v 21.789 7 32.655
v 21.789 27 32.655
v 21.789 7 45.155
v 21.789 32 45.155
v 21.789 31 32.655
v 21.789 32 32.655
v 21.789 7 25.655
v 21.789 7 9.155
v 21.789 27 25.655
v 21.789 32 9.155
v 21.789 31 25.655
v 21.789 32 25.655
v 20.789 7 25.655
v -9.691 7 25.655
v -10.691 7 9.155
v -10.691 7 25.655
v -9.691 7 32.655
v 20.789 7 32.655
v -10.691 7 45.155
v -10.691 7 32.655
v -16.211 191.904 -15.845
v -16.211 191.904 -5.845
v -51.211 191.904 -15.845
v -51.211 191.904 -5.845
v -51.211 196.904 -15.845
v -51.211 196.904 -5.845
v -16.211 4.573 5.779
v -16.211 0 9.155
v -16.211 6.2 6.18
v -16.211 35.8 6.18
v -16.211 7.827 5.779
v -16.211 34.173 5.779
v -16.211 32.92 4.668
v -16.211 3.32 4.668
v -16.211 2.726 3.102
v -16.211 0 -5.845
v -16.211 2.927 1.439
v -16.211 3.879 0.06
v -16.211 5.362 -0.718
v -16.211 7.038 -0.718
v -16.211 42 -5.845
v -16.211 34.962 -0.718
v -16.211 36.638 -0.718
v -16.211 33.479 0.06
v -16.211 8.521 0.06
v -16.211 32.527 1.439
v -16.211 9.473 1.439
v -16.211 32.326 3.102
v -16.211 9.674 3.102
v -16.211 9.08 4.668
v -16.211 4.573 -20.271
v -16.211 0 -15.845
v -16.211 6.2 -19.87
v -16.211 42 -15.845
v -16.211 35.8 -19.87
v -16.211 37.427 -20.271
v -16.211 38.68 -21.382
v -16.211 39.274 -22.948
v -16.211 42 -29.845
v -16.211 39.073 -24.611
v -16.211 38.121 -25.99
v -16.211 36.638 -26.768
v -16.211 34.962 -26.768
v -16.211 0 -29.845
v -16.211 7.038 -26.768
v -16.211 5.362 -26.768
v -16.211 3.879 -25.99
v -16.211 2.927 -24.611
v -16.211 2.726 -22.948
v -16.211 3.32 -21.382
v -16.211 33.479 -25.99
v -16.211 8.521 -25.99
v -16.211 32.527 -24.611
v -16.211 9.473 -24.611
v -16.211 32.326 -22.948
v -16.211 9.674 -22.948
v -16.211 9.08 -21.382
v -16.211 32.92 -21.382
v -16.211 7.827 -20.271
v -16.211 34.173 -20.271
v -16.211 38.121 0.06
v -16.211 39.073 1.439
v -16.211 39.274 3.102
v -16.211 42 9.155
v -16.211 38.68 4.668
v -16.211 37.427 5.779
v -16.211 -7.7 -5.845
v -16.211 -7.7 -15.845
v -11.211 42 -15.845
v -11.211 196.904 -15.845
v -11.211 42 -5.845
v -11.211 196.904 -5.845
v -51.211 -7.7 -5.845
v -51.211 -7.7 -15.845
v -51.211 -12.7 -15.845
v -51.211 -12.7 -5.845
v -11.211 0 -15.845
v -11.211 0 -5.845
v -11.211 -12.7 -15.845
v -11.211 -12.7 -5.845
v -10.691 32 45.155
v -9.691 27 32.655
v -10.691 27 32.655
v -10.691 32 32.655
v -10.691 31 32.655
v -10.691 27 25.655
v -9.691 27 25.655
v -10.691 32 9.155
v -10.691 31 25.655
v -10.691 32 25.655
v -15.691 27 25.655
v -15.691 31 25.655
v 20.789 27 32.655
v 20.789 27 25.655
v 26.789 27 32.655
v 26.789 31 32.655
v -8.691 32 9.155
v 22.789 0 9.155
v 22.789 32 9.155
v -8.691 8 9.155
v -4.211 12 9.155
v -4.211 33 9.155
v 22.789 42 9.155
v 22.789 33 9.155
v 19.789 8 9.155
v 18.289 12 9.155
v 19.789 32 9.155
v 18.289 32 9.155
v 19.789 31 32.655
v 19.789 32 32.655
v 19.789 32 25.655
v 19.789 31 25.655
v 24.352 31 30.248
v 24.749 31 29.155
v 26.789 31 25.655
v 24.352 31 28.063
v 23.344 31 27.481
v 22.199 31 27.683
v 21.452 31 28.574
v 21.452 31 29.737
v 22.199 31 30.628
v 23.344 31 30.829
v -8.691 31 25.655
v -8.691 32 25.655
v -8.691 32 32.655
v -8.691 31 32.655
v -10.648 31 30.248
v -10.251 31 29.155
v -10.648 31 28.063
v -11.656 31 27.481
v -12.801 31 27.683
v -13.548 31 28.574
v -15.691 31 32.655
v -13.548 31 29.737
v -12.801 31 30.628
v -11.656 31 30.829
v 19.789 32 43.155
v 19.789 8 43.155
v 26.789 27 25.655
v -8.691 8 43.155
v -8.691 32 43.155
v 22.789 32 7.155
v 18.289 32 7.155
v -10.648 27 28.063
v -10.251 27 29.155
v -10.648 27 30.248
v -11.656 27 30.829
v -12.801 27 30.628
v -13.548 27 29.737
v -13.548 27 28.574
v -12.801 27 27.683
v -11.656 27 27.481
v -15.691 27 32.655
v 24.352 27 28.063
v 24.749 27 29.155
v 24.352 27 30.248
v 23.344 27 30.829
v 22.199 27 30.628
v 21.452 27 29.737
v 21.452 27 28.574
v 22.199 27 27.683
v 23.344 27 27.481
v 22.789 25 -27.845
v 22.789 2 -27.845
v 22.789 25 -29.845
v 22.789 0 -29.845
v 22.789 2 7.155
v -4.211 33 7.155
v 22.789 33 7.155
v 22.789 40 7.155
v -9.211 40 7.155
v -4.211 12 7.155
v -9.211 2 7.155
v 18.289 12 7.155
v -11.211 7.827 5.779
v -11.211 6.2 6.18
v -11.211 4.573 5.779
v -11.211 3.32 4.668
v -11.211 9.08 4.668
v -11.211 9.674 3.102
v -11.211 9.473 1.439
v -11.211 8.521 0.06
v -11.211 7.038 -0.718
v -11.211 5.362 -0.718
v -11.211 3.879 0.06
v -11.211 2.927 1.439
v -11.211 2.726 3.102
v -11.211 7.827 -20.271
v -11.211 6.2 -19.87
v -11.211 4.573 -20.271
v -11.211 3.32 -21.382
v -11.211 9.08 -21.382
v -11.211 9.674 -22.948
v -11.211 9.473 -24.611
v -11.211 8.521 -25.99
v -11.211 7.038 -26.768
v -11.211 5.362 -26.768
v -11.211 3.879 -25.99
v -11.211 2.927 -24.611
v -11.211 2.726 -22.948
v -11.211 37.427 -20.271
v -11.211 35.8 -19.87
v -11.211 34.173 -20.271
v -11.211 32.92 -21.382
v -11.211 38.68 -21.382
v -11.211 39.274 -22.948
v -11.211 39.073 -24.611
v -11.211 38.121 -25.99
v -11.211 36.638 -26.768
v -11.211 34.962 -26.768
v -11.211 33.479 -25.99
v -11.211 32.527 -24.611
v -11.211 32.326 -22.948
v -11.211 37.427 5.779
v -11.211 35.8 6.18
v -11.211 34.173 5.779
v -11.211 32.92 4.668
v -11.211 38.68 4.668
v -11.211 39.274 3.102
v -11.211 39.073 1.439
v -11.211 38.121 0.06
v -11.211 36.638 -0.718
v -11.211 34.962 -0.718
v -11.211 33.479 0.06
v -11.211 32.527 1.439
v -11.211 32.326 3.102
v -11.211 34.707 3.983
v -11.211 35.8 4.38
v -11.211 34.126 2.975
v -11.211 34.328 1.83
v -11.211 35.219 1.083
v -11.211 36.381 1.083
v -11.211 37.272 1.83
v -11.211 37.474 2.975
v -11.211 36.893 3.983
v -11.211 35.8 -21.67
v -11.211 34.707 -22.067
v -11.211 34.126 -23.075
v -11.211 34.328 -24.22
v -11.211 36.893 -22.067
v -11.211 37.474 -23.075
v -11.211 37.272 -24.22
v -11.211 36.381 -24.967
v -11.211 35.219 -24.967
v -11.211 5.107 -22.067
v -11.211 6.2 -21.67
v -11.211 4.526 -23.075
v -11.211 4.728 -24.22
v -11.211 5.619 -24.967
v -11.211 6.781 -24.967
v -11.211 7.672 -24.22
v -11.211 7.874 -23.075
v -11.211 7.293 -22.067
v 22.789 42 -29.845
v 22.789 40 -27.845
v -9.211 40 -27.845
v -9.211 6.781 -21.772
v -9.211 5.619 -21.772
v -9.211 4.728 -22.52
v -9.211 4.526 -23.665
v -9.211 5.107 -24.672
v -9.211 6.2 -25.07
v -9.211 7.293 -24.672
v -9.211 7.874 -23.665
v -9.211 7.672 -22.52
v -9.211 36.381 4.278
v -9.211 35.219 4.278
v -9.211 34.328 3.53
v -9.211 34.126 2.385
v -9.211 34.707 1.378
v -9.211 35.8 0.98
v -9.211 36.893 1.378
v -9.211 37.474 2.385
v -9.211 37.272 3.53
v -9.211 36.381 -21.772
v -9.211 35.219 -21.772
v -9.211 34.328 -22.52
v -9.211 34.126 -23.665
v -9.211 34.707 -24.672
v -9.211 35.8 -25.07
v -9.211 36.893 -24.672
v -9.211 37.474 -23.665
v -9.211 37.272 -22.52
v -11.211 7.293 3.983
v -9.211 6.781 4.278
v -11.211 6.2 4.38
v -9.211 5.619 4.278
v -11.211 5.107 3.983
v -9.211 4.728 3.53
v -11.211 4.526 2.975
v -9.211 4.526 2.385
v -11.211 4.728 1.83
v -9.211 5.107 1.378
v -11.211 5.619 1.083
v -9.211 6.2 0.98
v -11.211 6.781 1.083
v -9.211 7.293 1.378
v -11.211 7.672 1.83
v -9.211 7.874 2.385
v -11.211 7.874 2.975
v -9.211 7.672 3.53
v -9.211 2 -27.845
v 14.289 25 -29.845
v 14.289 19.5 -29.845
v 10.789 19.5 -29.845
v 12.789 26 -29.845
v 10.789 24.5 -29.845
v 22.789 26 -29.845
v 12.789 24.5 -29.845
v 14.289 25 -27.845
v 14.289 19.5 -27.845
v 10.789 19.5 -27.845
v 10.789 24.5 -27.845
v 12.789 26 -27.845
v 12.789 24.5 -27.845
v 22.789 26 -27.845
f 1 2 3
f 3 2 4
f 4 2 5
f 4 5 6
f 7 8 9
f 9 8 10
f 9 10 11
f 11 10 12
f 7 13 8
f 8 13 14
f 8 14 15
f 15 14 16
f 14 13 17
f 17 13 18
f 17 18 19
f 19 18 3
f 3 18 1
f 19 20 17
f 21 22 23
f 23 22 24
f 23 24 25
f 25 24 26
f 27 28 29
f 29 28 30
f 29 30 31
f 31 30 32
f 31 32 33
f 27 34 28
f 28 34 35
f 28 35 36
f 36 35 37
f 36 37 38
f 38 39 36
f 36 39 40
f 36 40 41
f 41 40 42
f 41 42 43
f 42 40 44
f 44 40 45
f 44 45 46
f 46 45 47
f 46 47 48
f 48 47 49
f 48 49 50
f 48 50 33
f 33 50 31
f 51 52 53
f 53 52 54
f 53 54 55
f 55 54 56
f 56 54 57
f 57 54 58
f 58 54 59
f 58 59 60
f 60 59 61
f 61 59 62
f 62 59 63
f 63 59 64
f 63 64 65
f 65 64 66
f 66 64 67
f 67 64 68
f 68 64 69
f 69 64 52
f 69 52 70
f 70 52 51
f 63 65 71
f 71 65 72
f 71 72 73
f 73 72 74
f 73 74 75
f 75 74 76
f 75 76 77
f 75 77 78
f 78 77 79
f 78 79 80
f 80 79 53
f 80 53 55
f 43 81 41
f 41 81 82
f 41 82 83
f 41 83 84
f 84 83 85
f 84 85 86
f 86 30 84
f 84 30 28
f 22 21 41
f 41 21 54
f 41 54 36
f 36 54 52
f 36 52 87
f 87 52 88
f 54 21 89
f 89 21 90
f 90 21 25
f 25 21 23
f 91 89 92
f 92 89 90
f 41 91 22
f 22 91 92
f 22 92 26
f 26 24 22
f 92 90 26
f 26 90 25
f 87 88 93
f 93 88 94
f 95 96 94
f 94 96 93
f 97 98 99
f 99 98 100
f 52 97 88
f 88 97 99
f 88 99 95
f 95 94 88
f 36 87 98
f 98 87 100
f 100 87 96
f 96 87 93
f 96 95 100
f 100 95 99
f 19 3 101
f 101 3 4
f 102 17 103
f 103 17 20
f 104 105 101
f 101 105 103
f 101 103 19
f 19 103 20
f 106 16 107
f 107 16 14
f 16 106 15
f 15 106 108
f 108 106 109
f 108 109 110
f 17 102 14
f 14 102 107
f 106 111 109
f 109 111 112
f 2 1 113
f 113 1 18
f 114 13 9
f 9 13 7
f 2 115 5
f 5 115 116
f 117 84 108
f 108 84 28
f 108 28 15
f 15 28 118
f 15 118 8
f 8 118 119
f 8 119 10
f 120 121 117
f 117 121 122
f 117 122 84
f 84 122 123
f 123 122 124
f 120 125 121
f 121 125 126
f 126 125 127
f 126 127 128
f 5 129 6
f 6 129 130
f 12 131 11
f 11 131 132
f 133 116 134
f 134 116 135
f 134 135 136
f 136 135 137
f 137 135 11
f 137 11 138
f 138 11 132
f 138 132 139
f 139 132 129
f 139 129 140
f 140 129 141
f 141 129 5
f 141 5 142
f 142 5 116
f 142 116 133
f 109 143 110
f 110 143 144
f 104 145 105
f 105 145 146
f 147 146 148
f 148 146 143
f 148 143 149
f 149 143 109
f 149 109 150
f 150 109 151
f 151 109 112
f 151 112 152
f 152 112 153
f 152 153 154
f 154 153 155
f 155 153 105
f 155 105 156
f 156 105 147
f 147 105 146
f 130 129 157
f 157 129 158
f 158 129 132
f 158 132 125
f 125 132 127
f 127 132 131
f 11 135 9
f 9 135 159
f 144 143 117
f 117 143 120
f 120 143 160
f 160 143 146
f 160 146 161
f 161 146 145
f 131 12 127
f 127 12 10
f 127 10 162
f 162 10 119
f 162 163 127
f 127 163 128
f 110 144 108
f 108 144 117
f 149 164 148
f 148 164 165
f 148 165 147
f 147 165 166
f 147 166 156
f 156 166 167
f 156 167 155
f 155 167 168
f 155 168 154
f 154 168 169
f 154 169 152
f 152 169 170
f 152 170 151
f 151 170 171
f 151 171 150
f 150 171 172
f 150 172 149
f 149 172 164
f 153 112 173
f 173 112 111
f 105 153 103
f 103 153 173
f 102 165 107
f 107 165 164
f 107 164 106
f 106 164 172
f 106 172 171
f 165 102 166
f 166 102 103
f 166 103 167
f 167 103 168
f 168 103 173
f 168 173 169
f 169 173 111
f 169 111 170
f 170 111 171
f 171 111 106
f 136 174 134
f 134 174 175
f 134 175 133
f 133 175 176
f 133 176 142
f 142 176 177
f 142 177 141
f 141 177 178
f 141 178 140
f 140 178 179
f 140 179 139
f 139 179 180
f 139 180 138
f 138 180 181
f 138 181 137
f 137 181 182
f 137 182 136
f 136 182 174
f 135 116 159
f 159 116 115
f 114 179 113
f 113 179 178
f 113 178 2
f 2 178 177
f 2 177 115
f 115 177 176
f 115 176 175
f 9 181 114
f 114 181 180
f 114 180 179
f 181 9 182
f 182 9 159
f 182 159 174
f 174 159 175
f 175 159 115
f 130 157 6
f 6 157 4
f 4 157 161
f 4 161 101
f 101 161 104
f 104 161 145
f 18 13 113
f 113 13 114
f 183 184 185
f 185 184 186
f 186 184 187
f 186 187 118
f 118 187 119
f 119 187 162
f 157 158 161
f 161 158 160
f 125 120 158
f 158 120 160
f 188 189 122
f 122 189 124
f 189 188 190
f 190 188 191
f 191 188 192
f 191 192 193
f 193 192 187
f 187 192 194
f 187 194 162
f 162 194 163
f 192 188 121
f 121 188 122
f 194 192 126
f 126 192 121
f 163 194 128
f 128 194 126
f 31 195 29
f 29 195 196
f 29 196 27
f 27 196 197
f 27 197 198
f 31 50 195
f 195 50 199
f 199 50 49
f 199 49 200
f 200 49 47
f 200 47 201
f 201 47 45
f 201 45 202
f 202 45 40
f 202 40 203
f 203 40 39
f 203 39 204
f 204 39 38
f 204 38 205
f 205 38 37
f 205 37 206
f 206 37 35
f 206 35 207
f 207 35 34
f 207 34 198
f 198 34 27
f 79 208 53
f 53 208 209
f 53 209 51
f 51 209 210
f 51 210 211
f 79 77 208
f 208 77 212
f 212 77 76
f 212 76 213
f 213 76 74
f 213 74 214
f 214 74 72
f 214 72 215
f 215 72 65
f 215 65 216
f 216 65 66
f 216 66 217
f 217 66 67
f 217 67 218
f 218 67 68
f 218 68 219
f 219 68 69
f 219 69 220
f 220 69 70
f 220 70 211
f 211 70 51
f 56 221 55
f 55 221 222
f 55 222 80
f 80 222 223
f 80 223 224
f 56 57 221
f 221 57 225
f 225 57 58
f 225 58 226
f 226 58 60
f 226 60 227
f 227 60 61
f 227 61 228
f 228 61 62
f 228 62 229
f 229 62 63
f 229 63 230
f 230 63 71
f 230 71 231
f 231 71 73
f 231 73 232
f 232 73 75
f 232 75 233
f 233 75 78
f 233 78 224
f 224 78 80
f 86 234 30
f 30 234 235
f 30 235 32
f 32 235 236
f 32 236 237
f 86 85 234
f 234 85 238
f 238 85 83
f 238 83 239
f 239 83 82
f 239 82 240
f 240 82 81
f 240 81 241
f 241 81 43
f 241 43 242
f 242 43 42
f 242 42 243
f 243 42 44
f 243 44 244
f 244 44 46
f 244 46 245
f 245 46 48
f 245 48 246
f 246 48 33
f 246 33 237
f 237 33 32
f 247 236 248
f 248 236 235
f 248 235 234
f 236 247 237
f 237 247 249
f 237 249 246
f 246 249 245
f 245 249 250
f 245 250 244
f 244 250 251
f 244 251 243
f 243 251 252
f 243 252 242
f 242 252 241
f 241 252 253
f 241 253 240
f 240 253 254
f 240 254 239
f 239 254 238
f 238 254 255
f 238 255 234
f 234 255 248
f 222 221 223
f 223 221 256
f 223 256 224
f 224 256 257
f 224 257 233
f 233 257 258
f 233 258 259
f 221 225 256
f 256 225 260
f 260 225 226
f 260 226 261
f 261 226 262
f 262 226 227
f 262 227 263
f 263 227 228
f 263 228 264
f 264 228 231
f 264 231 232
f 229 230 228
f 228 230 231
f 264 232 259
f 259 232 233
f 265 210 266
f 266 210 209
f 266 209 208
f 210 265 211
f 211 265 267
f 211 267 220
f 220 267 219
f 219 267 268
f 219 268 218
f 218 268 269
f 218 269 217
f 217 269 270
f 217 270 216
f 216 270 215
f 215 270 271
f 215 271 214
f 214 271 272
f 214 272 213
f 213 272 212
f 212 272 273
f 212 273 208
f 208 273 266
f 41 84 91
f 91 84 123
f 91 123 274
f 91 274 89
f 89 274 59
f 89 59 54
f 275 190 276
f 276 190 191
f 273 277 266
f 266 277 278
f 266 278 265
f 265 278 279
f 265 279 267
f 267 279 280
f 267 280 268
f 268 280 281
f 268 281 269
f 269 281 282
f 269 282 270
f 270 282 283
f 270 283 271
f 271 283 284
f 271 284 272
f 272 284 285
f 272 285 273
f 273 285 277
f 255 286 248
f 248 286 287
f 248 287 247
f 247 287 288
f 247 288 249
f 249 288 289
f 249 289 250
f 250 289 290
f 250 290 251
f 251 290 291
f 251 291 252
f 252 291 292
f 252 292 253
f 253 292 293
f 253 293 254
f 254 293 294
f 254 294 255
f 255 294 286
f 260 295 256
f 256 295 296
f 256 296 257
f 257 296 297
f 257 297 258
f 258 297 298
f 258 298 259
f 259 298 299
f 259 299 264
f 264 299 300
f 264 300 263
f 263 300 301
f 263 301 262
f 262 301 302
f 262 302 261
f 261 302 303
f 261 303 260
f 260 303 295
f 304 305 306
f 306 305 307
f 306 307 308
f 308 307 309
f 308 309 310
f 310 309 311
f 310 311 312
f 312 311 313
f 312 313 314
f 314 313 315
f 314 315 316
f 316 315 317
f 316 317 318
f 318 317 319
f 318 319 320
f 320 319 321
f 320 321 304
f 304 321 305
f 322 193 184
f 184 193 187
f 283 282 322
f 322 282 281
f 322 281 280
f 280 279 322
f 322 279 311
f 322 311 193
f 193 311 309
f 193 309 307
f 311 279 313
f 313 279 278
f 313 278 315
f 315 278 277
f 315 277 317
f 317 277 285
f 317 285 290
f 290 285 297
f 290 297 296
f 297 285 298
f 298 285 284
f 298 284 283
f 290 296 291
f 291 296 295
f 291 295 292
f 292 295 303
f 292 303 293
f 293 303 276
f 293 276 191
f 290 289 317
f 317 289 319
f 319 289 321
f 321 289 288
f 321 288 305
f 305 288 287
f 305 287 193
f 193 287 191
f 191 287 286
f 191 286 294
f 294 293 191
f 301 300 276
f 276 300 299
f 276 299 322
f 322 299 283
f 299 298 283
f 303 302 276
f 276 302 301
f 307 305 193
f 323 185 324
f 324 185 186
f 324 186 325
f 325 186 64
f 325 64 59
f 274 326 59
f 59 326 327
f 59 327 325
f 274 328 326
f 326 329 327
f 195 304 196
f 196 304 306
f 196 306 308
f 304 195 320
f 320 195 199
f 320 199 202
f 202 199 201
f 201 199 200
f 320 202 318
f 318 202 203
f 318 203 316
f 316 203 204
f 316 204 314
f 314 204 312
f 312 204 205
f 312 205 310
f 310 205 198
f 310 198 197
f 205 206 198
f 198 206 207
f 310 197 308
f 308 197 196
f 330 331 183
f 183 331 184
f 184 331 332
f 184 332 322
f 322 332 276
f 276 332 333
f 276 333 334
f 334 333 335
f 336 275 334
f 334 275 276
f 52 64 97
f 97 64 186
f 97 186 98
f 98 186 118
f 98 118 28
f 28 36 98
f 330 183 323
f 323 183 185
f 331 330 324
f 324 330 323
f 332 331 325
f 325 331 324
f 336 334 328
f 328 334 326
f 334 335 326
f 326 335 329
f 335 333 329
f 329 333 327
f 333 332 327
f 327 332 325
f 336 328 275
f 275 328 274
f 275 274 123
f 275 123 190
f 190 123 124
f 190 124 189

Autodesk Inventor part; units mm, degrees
ref_plane "YZ Plane" through (0, 0, 0) normal (1, 0, 0) x (0, 1, 0)
ref_plane "XZ Plane" through (0, 0, 0) normal (0, 1, 0) x (-1, 0, 0)
ref_plane "XY Plane" through (0, 0, 0) normal (0, 0, 1) x (1, 0, 0)
sketch "Sketch1" plane through (0, 0, 0) normal (0, 1, 0) x (-1, 0, 0)
  line L0 (9.2107, 7.1553) -> (-19.7893, 7.1553)
  line L1 (-19.7893, 7.1553) -> (-19.7893, -27.8447)
  line L2 (-19.7893, -27.8447) -> (9.2107, -27.8447)
  line L3 (9.2107, -27.8447) -> (9.2107, 7.1553)
  line L4 (9.2107, 7.1553) -> (11.2107, 7.1553)
  line L5 (11.2107, 7.1553) -> (11.2107, 9.1553)
  line L6 (11.2107, 9.1553) -> (-21.7893, 9.1553)
  line L7 (-21.7893, 9.1553) -> (-21.7893, -29.8447)
  line L8 (-21.7893, -29.8447) -> (11.2107, -29.8447)
  line L9 (11.2107, -29.8447) -> (11.2107, 7.1553)
  point P0 (0, 0)
  dimension "d0" = 29
  dimension "d1" = 35
  dimension "d2" = 2
  dimension "d3" = 2
  dimension "d4" = 33
  dimension "d5" = 39
extrude "Extrusion1" add sketch "Sketch1" along normal blind 2 contours L3 L2 L1 L0
extrude "Extrusion2" add sketch "Sketch1" along normal blind 40
sketch "Sketch2" plane through (21.7893, 0, -29.8447) normal (1, 0, 0) x (0, 0, -1)
  line L0 (-37, 2) -> (-37, 40) projected
  line L1 (-37, 40) -> (-37, 2)
  line L2 (-2, 2) -> (-2, 40) projected
  line L3 (-37, 2) -> (-2, 2)
  line L4 (-2, 2) -> (-2, 40)
  line L5 (-37, 40) -> (-2, 40) projected
  line L6 (-2, 40) -> (-37, 40)
extrude "Extrusion3" cut sketch "Sketch2" against normal blind 10
sketch "Sketch3" plane through (-9.2107, 2, -27.8447) normal (1, 0, 0) x (0, 0, -1)
  line L0 (0, 0) -> (0, 38) projected
  line L1 (0, 0) -> (0, 4.2)
  line L2 (0, 4.2) -> (-4.475, 4.2)
  line L3 (-35, 0) -> (-35, 38) projected
  line L4 (-4.475, 4.2) -> (-30.525, 4.2)
  line L5 (-30.525, 4.2) -> (-30.525, 33.8)
  line L6 (-30.525, 33.8) -> (-4.475, 33.8)
  line L7 (-4.475, 33.8) -> (-4.475, 4.2)
  point P0 (-27.8447, -2)
  dimension "d12" = 4.2
  dimension "d13" = 4.475
  dimension "d14" = 26.05
  dimension "d15" = 29.6
hole "Hole1" at (-9.2107, 35.8, 2.6803) at (-9.2107, 35.8, -23.3697) at (-9.2107, 6.2, -23.3697) at (-9.2107, 6.2, 2.6803) direction (-1, 0, 0) diameter 3.4 end through all clearance for "Flat Head Machine Screw" size "M3" standard "Ansi Metric M Profile"
sketch "Sketch4" plane through (-11.2107, 2, -27.8447) normal (1, 0, 0) x (0, 0, -1)
  line L0 (-37, 38) -> (-35, 38) projected
  line L1 (-37, 38) -> (2, 38)
  line L2 (2, 38) -> (2, 40)
  line L3 (2, 40) -> (-37, 40)
  line L4 (-37, 40) -> (-37, 38)
  point P0 (-27.8447, -2)
  dimension "d23" = 39
  dimension "d24" = 2
extrude "Extrusion4" add sketch "Sketch4" along normal blind 33
sketch "Sketch5" plane through (21.7893, 0, 9.1553) normal (1, 0, 0) x (0, 0, -1)
  point P0 (9.1553, 0)
sketch "Sketch6" plane through (-11.2107, 0, -29.8447) normal (-1, 0, 0) x (0, 0, 1)
  point P0 (29.8447, 0)
sketch "Sketch7" plane through (-11.2107, 0, -29.8447) normal (-1, 0, 0) x (0, 0, 1)
  circle A0 centre (6.475, 6.2) radius 1.7 projected
  circle A1 centre (32.525, 35.8) radius 1.7 projected
  circle A2 centre (6.475, 35.8) radius 1.7 projected
  circle A3 centre (32.525, 6.2) radius 1.7 projected
  line L0 (0, 0) -> (39, 0) projected
  line L1 (39, 0) -> (39, 42) projected
  line L2 (0, 42) -> (39, 42) projected
  line L3 (0, 0) -> (0, 42) projected
  circle A4 centre (6.475, 6.2) radius 1.7 projected
  circle A5 centre (6.475, 6.2) radius 3.5
  circle A6 centre (6.475, 35.8) radius 3.5
  circle A7 centre (32.525, 35.8) radius 3.5
  circle A8 centre (32.525, 6.2) radius 1.7 projected
  circle A9 centre (32.525, 6.2) radius 3.5
  point P0 (29.8447, 0)
  dimension "d27" = 7
  dimension "d28" = 7
  dimension "d29" = 7
  dimension "d30" = 7
extrude "Extrusion5" add sketch "Sketch7" along normal blind 5 contours L3 L2 L1 L0
sketch "Sketch8" plane through (21.7893, 0, 9.1553) normal (0, 0, 1) x (1, 0, 0)
  line L0 (0, 0) -> (0, 42) projected
  line L1 (0, 42) -> (0, 32)
  line L2 (0, 32) -> (-3.5, 32)
  line L3 (-3.5, 32) -> (-3.5, 12)
  line L4 (-3.5, 32) -> (16.5, 32) construction
  line L5 (-3.5, 12) -> (-26, 12)
  line L6 (-26, 12) -> (-26, 32)
  line L7 (-26, 32) -> (-3.5, 32)
  point P0 (-21.7893, 0)
  dimension "d33" = 10
  dimension "d34" = 3.5
  dimension "d35" = 20
  dimension "d36" = 90
  dimension "d37" = 22.5
extrude "Extrusion6" cut sketch "Sketch8" against normal blind 10
sketch "Sketch9" plane through (21.7893, 0, 9.1553) normal (0, 0, 1) x (1, 0, 0)
  line L0 (-26, 32) -> (-3.5, 32) projected
  line L1 (-26, 32) -> (-26, 33)
  line L2 (-26, 33) -> (0, 33)
  line L3 (0, 2) -> (0, 40) projected
  line L4 (0, 32) -> (-10.0622, 32)
  point P0 (-21.7893, 0)
  dimension "d40" = 1
extrude "Extrusion7" cut sketch "Sketch9" against normal blind 10
sketch "Sketch10" plane through (-16.2107, 42, 9.1553) normal (0, 0, 1) x (1, 0, 0)
  line L0 (38, -10) -> (34.5, -10) projected
  line L1 (38, -10) -> (38, -34)
  line L2 (38, -40) -> (38, -10) projected
  line L3 (0, -42) -> (0, 0) projected
  line L4 (38, -34) -> (7.52, -34)
  line L5 (7, -40) -> (7, -2) projected
  line L6 (7.52, -34) -> (7.52, -10)
  line L7 (7.52, -10) -> (38, -10)
  line L8 (38, -34) -> (38, -35)
  line L9 (38, -35) -> (6.52, -35)
  line L10 (6.52, -35) -> (6.52, -9)
  line L11 (6.52, -9) -> (38, -9)
  line L12 (38, -2) -> (38, -40) projected
  line L13 (38, -10) -> (38, -9)
  point P0 (16.2107, -42)
  dimension "d43" = 24
  dimension "d44" = 30.48
  dimension "d45" = 1
  dimension "d46" = 31.48
  dimension "d47" = 26
extrude "Extrusion8" add sketch "Sketch10" along normal blind 34 contours L0 L7 L6 L4 L2 L9 L5 L11 L12 | L5 L9 L10 L11
sketch "Sketch11" plane through (-9.6907, 9, 9.1553) normal (1, 0, 0) x (0, 0, -1)
  line L0 (-34, -2) -> (-34, -1) projected
  line L1 (-34, -2) -> (-35, -2)
  line L2 (-35, -2) -> (-35, 24)
  line L3 (0, 24) -> (-34, 24) projected
  line L4 (-35, 24) -> (-34, 24)
  line L5 (-34, 24) -> (-34, -2)
  point P0 (9.1553, -9)
  point P1 (0, 26)
  point P2 (-34, -1)
  dimension "d50" = 1
extrude "Extrusion9" add sketch "Sketch11" along normal blind 29.48
sketch "Sketch16" plane through (-9.6907, 7, 9.1553) normal (0, -1, 0) x (1, 0, 0)
  line L0 (0, 35) -> (29.48, 35) projected
  line L1 (29.48, 35) -> (30.48, 35)
  line L2 (30.48, 35) -> (30.48, 0)
  line L3 (30.48, 0) -> (29.48, 0)
  line L4 (29.48, 0) -> (29.48, 35)
  point P0 (9.6907, -9.1553)
  dimension "d69" = 1
  dimension "d70" = 35
extrude "Extrusion14" add sketch "Sketch16" against normal blind 26
sketch "Sketch17" plane through (-4.2107, 33, 9.1553) normal (0, 1, 0) x (1, 0, 0)
  line L0 (24, 0) -> (24, -34) projected
  line L1 (-4.48, -34) -> (24, -34) projected
  line L2 (24, -34) -> (-4.48, -34)
  line L3 (-4.48, 0) -> (-4.48, -34) projected
  line L4 (-4.48, -34) -> (-4.48, 0)
  line L5 (-4.48, 0) -> (26, 0)
  line L6 (25, -34) -> (25, 0) projected
  line L7 (0, 0) -> (26, 0) projected
  line L8 (-5.48, 0) -> (0, 0) projected
  line L9 (-5.48, 0) -> (-5.48, -35) projected
  line L10 (-5.48, -35) -> (25, -35) projected
  line L11 (25, -35) -> (25, -34) projected
  line L12 (26, -34) -> (25, -34) projected
  line L13 (26, 0) -> (26, -34) projected
  point P0 (4.2107, 9.1553)
extrude "Extrusion15" cut sketch "Sketch17" against normal blind 10 contours L0 L1 L3 L5
sketch "Sketch18" plane through (-9.6907, 33, 44.1553) normal (0, 1, 0) x (1, 0, 0)
  line L0 (1, 1) -> (1, 35) projected
  line L1 (0, 35) -> (1, 35) projected
  line L2 (0, 35) -> (0, 0) projected
  line L3 (0, 0) -> (30.48, 0) projected
  line L4 (30.48, 0) -> (30.48, 1) projected
  line L5 (29.48, 1) -> (1, 1) projected
  line L6 (31.48, 1) -> (30.48, 1) projected
  line L7 (31.48, 35) -> (31.48, 1) projected
  line L8 (29.48, 35) -> (29.48, 1) projected
  line L9 (29.48, 35) -> (31.48, 35) projected
  point P0 (9.6907, 44.1553)
extrude "Extrusion16" cut sketch "Sketch18" against normal blind 1
sketch "Sketch19" plane through (21.7893, 0, 9.1553) normal (1, 0, 0) x (0, 0, -1)
  line L0 (0, 0) -> (0, 7) projected
  line L1 (0, 0) -> (39, 0) projected
  line L2 (39, 0) -> (39, 42) projected
  line L3 (39, 42) -> (0, 42) projected
  line L4 (0, 33) -> (0, 42) projected
  line L5 (0, 33) -> (2, 33) projected
  line L6 (2, 33) -> (2, 40) projected
  line L7 (2, 40) -> (37, 40) projected
  line L8 (37, 40) -> (37, 2) projected
  line L9 (37, 2) -> (2, 2) projected
  line L10 (2, 2) -> (2, 32) projected
  line L11 (2, 32) -> (0, 32) projected
  line L12 (0, 8) -> (0, 32) projected
  line L13 (0, 8) -> (-34, 8) projected
  line L14 (-34, 7) -> (-34, 8) projected
  line L15 (0, 7) -> (-34, 7) projected
  line L16 (0, 7) -> (0, 8)
  line L17 (0, 0) -> (0, 42) projected
  point P0 (9.1553, 0)
extrude "Extrusion17" add sketch "Sketch19" along normal blind 1 contours L0 L16 L12 L11 L10 L9 L8 L7 L6 L5 L4 L3 L2 L1
sketch "Sketch20" plane through (-9.6907, 32, 44.1553) normal (0, 1, 0) x (1, 0, 0)
  line L0 (29.48, 1) -> (1, 1) projected
  line L1 (15.24, 1) -> (15.24, 15)
  line L2 (15.24, 15) -> (32.74, 15)
  line L3 (32.74, 15) -> (-2.26, 15)
  line L4 (1, 35) -> (1, 1) projected
  line L5 (1, 15) -> (1, 11.5)
  line L6 (1, 11.5) -> (-6, 11.5)
  line L7 (-6, 11.5) -> (-6, 18.5)
  line L8 (-6, 18.5) -> (1, 18.5)
  line L9 (1, 11.5) -> (1, 18.5)
  line L10 (29.48, 1) -> (29.48, 35) projected
  line L11 (29.48, 18.5) -> (36.48, 18.5)
  line L12 (36.48, 18.5) -> (36.48, 11.5)
  line L13 (36.48, 11.5) -> (29.48, 11.5)
  circle A0 centre (-2.26, 15) radius 1.7
  circle A1 centre (32.74, 15) radius 1.7
  point P0 (9.6907, 44.1553)
  point P1 (30.48, 1)
  dimension "d79" = 14
  dimension "d80" = 17.5
  dimension "d81" = 90
  dimension "d82" = 35
  dimension "d83" = 3.5
  dimension "d84" = 7
  dimension "d85" = 7
  dimension "d86" = 7
  dimension "d87" = 3.4
  dimension "d88" = 3.4
extrude "Extrusion18" add sketch "Sketch20" against normal blind 5 contours L10 L11 L12 L13 | L6 L7 L8 L4
sketch "Sketch21" plane through (-8.6907, 32, 43.1553) normal (0, 1, 0) x (1, 0, 0)
  line L0 (29.48, 17.5) -> (29.48, 10.5) projected
  line L1 (29.48, 17.5) -> (28.48, 17.5)
  line L2 (28.48, 0) -> (28.48, 34) projected
  line L3 (35.48, 10.5) -> (29.48, 10.5) projected
  line L4 (29.48, 10.5) -> (28.48, 10.5)
  line L5 (28.48, 10.5) -> (28.48, 17.5)
  line L6 (-1, 17.5) -> (-7, 17.5) projected
  line L7 (-1, 17.5) -> (0, 17.5)
  line L8 (0, 34) -> (0, 0) projected
  line L9 (-1, 10.5) -> (-1, 17.5)
  line L10 (-1, 34) -> (-1, -1) projected
  line L11 (-1, -1) -> (-1, 10.5) projected
  line L12 (-1, 10.5) -> (0, 10.5)
  line L13 (0, 10.5) -> (0, 17.5)
  line L14 (29.48, 10.5) -> (29.48, -1) projected
  line L15 (26.98, 36) -> (31.48, 36) projected
  line L16 (26.98, 34) -> (26.98, 36) projected
  line L17 (28.48, 34) -> (26.98, 34) projected
  line L18 (0, 34) -> (0, 0) projected
  line L19 (-1, 34) -> (0, 34) projected
  line L20 (-1, 17.5) -> (-1, 34) projected
  line L21 (-1, 17.5) -> (-7, 17.5) projected
  line L22 (-7, 17.5) -> (-7, 10.5) projected
  line L23 (-7, 10.5) -> (-1, 10.5) projected
  line L24 (-1, -1) -> (-1, 10.5) projected
  line L25 (29.48, -1) -> (-1, -1) projected
  line L26 (31.48, 34) -> (29.48, 34) projected
  line L27 (31.48, 36) -> (31.48, 34) projected
  line L28 (28.48, 0) -> (28.48, 34) projected
  line L29 (0, 0) -> (28.48, 0) projected
  line L30 (29.48, 10.5) -> (35.48, 10.5) projected
  line L31 (35.48, 10.5) -> (35.48, 17.5) projected
  line L32 (35.48, 17.5) -> (29.48, 17.5) projected
  line L33 (29.48, 34) -> (29.48, 17.5) projected
  point P0 (8.6907, 43.1553)
  point P1 (30.1371, 10.5)
  point P2 (29.48, 17.5)
  point P3 (-7, 17.5)
extrude "Extrusion19" cut sketch "Sketch21" against normal blind 1 contours L32 L31 L3 L0 | L0 L4 L2 L1 | L23 L22 L6 L9 | L9 L7 L8 L12
sketch "Sketch30" plane through (20.7893, 7, 44.1553) normal (1, 0, 0) x (0, 0, -1)
  line L0 (11.5, 25) -> (0, 25) projected
  line L1 (0, 0) -> (0, 25) projected
  line L2 (1, 0) -> (0, 0) projected
  line L3 (1, 0) -> (0, 0) projected
  line L4 (35, 0) -> (37, 0)
  line L5 (1, 1) -> (1, 0) projected
  line L6 (35, 1) -> (1, 1) projected
  line L7 (35, 25) -> (35, 1) projected
  line L8 (35, 25) -> (18.5, 25) projected
  line L9 (18.5, 24) -> (18.5, 20) projected
  line L10 (18.5, 20) -> (11.5, 20) projected
  line L11 (11.5, 20) -> (11.5, 24) projected
  line L12 (18.5, 25) -> (18.5, 24) projected
  line L13 (11.5, 24) -> (11.5, 25) projected
  line L14 (18.5, 20) -> (18.5, 0)
  line L15 (35, 0) -> (0, 0) projected
  line L16 (11.5, 20) -> (18.5, 20) projected
  line L17 (11.5, 20) -> (11.5, 0)
  line L18 (35, 1) -> (1, 1) projected
  line L19 (11.5, 1) -> (11.5, 0)
  line L20 (35, 0) -> (1, 0) projected
  line L21 (18.5, 1) -> (18.5, 0)
  point P0 (44.1553, -7)
extrude "Extrusion25" add sketch "Sketch30" along normal blind 1 contours L13 L11 L17 L6 L5 L2 L1 L0 | L9 L12 L8 L7 L6 L14
sketch "Sketch31" plane through (-9.6907, 7, 9.1553) normal (-1, 0, 0) x (0, 0, 1)
  line L0 (16.5, 20) -> (16.5, 24) projected
  line L1 (16.5, 25) -> (0, 25) projected
  line L2 (0, 0) -> (0, 25) projected
  line L3 (0, 0) -> (35, 0) projected
  line L4 (35, 25) -> (35, 0) projected
  line L5 (35, 25) -> (23.5, 25) projected
  line L6 (23.5, 24) -> (23.5, 20) projected
  line L7 (23.5, 20) -> (16.5, 20) projected
  line L8 (23.5, 25) -> (23.5, 24) projected
  line L9 (16.5, 24) -> (16.5, 25) projected
  line L10 (0, 0) -> (35, 0) projected
  line L11 (16.5, 20) -> (23.5, 20)
  line L12 (23.5, 20) -> (23.5, 0)
  line L13 (23.5, 0) -> (16.5, 0)
  line L14 (16.5, 0) -> (16.5, 20)
  point P0 (-9.1553, -7)
  point P1 (23.5, 20)
  point P2 (23.5, 0)
  point P3 (16.5, 0)
extrude "Extrusion26" add sketch "Sketch31" along normal blind 1 contours L14 L3 L2 L1 L9 L0 | L6 L8 L5 L4 L3 L12
sketch "Sketch32" plane through (21.7893, 7, 44.1553) normal (0, 0, 1) x (1, 0, 0)
  line L0 (0, 25) -> (-32.48, 25) projected
  line L1 (-32.48, 0) -> (-32.48, 25) projected
  line L2 (-32.48, 0) -> (0, 0) projected
  line L3 (0, 25) -> (0, 0) projected
  point P0 (-21.7893, -7)
extrude "Extrusion27" add sketch "Sketch32" along normal blind 1
sketch "Sketch25" plane through (0, 0, 0) normal (0, -1, 0) x (1, 0, 0)
  line L0 (-16.2107, -29.8447) -> (-16.2107, 9.1553) projected
  line L1 (-16.2107, 9.1553) -> (-16.2107, -5.8447)
  line L2 (-16.2107, -5.8447) -> (-16.2107, -15.8447)
  line L3 (-16.2107, -15.8447) -> (-11.2107, -15.8447)
  line L4 (-11.2107, -15.8447) -> (-11.2107, -5.8447)
  line L5 (-11.2107, -5.8447) -> (-16.2107, -5.8447)
  point P0 (0, 0)
  dimension "d118" = 15
  dimension "d119" = 10
  dimension "d120" = 5
extrude "Extrusion21" add sketch "Sketch25" along normal blind 12.7
sketch "Sketch26" plane through (-16.2107, 0, -29.8447) normal (-1, 0, 0) x (0, 0, 1)
  line L0 (24, -12.7) -> (14, -12.7) projected
  line L1 (24, -12.7) -> (24, -7.7)
  line L2 (24, 0) -> (24, -12.7) projected
  line L3 (24, -7.7) -> (14, -7.7)
  line L4 (14, 0) -> (14, -12.7) projected
  line L5 (14, -12.7) -> (14, -7.7)
  point P0 (29.8447, 0)
  dimension "d123" = 5
extrude "Extrusion22" add sketch "Sketch26" along normal blind 35
sketch "Sketch27" plane through (-16.2107, 42, 9.1553) normal (0, 1, 0) x (1, 0, 0)
  line L0 (0, 25) -> (0, 15) projected
  line L1 (5, 25) -> (0, 25) projected
  line L2 (0, 25) -> (5, 25)
  line L3 (0, 15) -> (5, 15) projected
  line L4 (5, 25) -> (5, 15)
  line L5 (5, 15) -> (0, 15)
  point P0 (16.2107, 9.1553)
extrude "Extrusion23" add sketch "Sketch27" along normal blind 154.9042
sketch "Sketch28" plane through (-16.2107, 0, -29.8447) normal (-1, 0, 0) x (0, 0, 1)
  line L0 (14, 196.9042) -> (24, 196.9042) projected
  line L1 (14, 196.9042) -> (14, 191.9042)
  line L2 (14, 42) -> (14, 196.9042) projected
  line L3 (14, 191.9042) -> (24, 191.9042)
  line L4 (24, 42) -> (24, 196.9042) projected
  line L5 (24, 196.9042) -> (14, 196.9042)
  point P0 (29.8447, 0)
  dimension "d128" = 5
extrude "Extrusion24" add sketch "Sketch28" along normal blind 35
sketch "Sketch34" plane through (21.7893, 7, 9.1553) normal (1, 0, 0) x (0, 0, -1)
  line L0 (-16.5, 1) -> (-23.5, 1) projected
  line L1 (-23.5, 1) -> (-23.5, 0)
  line L2 (0, 0) -> (-36, 0) projected
  line L3 (-23.5, 1) -> (-23.5, 20) projected
  line L4 (-16.5, 1) -> (-16.5, 20) projected
  line L5 (-23.5, 1) -> (-16.5, 1)
  line L6 (-16.5, 20) -> (-16.5, 0) projected
  line L7 (-16.5, 1) -> (-16.5, 0)
  line L8 (-16.5, 0) -> (-23.5, 0)
  point P0 (9.1553, -7)
extrude "Extrusion28" cut sketch "Sketch34" against normal blind 1
sketch "Sketch35" plane through (-16.2107, 0, -29.8447) normal (0, 0, -1) x (-1, 0, 0)
  line L0 (0, 42) -> (-39, 42) projected
  line L1 (-39, 42) -> (-39, 26)
  line L2 (-39, 0) -> (-39, 42) projected
  line L3 (-39, 26) -> (-29, 26)
  line L4 (-29, 26) -> (-29, 24.5)
  line L5 (-29, 24.5) -> (-27, 24.5)
  line L6 (-27, 24.5) -> (-27, 19.5)
  line L7 (-27, 19.5) -> (-30.5, 19.5)
  line L8 (-30.5, 24.5) -> (-39, 24.5)
  line L9 (-30.5, 19.5) -> (-30.5, 25)
  line L10 (-30.5, 25) -> (-39, 25)
  line L11 (-39, 26) -> (-39, 25)
  point P0 (-16.2107, 0)
  dimension "d139" = 16
  dimension "d140" = 10
  dimension "d141" = 1.5
  dimension "d142" = 2
  dimension "d143" = 5
  dimension "d144" = 3.5
  dimension "d145" = 5.5
extrude "Extrusion29" cut sketch "Sketch35" against normal blind 10 contours L2 L3 L4 L5 L6 L7 L9 L10
properties part number "shell 4.0"
